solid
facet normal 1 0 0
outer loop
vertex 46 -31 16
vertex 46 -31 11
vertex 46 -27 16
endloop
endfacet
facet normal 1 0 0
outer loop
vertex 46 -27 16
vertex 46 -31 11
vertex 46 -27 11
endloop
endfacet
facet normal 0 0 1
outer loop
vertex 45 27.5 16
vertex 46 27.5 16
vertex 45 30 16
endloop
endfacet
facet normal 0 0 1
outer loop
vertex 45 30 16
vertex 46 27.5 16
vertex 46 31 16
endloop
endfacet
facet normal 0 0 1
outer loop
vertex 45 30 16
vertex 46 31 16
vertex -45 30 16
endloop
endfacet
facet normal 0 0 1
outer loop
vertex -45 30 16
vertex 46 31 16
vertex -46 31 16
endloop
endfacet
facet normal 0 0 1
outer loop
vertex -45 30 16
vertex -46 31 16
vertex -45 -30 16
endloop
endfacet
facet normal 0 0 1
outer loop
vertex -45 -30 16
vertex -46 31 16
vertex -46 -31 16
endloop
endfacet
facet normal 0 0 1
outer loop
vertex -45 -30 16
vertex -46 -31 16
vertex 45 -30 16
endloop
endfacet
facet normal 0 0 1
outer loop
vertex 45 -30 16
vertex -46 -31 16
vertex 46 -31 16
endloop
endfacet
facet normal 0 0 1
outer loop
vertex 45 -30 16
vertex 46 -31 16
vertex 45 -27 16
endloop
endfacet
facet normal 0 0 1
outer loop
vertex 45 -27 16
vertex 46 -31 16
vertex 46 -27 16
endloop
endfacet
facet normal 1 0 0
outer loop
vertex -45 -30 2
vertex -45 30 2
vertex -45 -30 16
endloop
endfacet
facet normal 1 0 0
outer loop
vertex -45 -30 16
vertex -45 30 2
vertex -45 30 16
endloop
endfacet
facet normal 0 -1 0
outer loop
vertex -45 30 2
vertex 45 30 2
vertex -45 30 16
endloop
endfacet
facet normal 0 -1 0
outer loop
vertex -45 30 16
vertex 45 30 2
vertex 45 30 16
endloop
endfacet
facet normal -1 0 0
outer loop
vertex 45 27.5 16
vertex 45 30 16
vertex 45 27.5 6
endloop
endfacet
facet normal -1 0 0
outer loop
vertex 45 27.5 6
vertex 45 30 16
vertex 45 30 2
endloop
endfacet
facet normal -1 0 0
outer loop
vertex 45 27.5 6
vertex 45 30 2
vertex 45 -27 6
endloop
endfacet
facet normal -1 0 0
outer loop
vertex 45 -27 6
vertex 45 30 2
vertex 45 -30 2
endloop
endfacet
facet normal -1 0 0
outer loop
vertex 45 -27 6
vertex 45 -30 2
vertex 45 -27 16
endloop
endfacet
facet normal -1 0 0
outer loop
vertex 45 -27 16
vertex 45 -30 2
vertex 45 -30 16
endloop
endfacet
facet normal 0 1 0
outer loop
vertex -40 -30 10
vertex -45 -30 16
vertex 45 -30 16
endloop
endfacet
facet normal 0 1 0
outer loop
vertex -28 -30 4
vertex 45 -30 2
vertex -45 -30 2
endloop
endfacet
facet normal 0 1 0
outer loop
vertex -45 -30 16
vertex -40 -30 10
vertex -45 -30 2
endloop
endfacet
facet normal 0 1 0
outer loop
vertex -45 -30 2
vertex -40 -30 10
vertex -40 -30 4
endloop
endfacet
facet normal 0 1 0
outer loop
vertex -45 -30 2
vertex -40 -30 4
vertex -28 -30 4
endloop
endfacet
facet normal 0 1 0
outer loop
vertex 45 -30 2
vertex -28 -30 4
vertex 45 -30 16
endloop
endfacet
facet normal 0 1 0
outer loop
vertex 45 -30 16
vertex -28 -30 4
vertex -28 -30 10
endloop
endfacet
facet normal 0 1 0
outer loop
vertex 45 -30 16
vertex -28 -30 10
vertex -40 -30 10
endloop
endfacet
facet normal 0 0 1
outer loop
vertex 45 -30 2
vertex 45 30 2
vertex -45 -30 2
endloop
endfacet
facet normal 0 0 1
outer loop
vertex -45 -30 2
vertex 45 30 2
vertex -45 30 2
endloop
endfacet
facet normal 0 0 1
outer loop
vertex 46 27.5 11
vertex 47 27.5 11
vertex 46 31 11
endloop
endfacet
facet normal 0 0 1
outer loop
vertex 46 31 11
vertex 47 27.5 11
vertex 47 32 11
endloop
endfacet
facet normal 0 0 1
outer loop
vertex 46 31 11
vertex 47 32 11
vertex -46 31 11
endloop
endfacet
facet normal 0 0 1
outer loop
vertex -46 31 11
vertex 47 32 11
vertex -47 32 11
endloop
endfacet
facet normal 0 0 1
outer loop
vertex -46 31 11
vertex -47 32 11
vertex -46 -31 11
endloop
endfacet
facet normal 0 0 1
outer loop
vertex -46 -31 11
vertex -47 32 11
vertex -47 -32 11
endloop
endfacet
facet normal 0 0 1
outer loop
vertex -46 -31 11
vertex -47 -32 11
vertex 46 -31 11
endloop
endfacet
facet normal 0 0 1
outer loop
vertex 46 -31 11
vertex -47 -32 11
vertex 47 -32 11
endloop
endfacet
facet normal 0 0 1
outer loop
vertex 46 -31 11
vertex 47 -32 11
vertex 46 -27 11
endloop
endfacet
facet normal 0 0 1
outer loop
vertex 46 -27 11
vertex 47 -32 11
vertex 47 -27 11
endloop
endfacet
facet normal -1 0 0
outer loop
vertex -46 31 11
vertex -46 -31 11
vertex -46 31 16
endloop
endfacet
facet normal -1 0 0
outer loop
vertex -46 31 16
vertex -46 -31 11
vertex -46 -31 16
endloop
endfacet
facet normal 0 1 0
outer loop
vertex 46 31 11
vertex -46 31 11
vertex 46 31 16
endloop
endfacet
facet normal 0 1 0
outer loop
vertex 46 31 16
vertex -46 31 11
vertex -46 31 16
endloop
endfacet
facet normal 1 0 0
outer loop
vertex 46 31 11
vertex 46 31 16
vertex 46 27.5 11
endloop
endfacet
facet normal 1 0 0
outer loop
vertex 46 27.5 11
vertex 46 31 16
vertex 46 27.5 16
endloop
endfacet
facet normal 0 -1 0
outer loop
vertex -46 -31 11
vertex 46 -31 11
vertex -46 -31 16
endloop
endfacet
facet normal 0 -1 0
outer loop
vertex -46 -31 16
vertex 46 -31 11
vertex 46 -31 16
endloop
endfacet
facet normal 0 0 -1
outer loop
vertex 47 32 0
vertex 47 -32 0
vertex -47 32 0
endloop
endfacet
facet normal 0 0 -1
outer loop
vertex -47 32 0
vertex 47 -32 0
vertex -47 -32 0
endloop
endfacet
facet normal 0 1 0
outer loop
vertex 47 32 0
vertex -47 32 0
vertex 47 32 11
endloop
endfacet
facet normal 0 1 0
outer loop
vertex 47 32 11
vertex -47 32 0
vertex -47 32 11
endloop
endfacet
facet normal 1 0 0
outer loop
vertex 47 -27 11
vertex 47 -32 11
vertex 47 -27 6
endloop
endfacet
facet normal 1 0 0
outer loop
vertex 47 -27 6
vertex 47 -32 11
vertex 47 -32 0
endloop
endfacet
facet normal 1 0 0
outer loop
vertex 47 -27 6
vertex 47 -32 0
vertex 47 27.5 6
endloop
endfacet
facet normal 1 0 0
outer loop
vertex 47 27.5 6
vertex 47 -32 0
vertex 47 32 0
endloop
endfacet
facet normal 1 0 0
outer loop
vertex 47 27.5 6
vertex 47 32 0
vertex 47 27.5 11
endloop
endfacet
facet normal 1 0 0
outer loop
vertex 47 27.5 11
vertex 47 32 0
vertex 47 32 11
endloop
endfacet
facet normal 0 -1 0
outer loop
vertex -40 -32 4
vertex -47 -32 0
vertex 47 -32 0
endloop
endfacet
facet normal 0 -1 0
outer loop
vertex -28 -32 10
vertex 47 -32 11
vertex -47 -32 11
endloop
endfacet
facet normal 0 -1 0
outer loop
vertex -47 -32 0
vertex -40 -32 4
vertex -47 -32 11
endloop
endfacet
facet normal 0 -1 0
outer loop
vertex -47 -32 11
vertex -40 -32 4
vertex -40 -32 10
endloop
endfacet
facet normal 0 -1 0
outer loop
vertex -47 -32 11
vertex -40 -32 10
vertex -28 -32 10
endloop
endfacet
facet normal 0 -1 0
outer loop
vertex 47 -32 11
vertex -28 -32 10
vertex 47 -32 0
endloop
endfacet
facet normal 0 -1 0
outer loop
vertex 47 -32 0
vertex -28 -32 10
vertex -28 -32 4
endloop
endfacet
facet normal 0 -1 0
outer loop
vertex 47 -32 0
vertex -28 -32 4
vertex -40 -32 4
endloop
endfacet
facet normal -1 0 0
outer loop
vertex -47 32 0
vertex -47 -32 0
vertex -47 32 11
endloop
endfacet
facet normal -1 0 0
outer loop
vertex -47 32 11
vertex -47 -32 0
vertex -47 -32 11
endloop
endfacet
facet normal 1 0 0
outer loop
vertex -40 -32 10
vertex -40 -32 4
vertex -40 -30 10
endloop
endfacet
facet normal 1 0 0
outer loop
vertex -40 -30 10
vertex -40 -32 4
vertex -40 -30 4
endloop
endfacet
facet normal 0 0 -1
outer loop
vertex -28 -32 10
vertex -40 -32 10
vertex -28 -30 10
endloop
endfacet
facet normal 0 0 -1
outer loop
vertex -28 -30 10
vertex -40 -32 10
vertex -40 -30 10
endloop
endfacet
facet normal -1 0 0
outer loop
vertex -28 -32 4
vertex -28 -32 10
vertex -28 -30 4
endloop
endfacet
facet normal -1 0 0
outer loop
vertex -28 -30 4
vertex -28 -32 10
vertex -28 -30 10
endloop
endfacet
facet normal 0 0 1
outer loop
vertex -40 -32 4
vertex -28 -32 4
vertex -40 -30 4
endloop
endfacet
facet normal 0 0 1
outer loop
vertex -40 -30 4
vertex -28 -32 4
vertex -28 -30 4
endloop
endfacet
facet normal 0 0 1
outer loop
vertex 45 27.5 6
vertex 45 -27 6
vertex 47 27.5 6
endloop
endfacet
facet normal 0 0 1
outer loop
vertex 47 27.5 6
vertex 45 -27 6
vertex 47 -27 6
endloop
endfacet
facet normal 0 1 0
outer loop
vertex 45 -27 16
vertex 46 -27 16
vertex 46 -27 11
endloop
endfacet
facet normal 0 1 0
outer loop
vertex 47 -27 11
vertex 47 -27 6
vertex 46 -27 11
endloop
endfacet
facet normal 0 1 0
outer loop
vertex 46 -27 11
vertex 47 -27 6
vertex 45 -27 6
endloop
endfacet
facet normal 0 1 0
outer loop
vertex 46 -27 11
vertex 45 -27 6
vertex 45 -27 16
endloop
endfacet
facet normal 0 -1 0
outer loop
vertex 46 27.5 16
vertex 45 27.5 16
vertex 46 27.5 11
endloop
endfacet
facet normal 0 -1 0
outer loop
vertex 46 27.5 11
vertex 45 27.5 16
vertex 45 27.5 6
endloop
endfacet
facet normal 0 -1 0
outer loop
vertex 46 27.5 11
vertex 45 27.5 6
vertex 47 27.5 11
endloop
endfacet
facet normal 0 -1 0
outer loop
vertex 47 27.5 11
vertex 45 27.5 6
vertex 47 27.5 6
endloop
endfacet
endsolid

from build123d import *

# Parameters (mm, degrees)
SKETCH1_W           = 94
SKETCH1_H           = 64
BOSS_EXTRUDE1_DEPTH = 16
SKETCH2_W           = 90
SKETCH2_H           = 60
CUT_EXTRUDE1_DEPTH  = 14
SKETCH4_W           = 94
SKETCH4_H           = 64
SKETCH4_W_2         = 92
SKETCH4_H_2         = 62
CUT_EXTRUDE2_DEPTH  = 5
CUT_EXTRUDE3_REACH  = 83
SKETCH6_W           = 12
SKETCH6_H           = 6
CUT_EXTRUDE4_REACH  = 100.712
SKETCH8_W           = 10
SKETCH8_H           = 54.5


with BuildPart() as part:
    # Sketch1 → Boss-Extrude1 (new body)
    with BuildSketch(Plane.XY):
        Rectangle(SKETCH1_W, SKETCH1_H)
    extrude(amount=BOSS_EXTRUDE1_DEPTH)

    # Sketch2 → Cut-Extrude1 (cut)
    with BuildSketch(Plane.XY.offset(16)):
        Rectangle(SKETCH2_W, SKETCH2_H)
    extrude(amount=-CUT_EXTRUDE1_DEPTH, mode=Mode.SUBTRACT)

    # Sketch4 → Cut-Extrude2 (cut)
    with BuildSketch(Plane.XY.offset(16)):
        Rectangle(SKETCH4_W, SKETCH4_H)
        Rectangle(SKETCH4_W_2, SKETCH4_H_2, mode=Mode.SUBTRACT)
    extrude(amount=-CUT_EXTRUDE2_DEPTH, mode=Mode.SUBTRACT)

    # Sketch6 → Cut-Extrude3 (cut, up to next)
    with BuildSketch(Plane.XZ.offset(32), mode=Mode.PRIVATE) as cut_extrude3_sk1:
        with Locations((-34, 7)):
            Rectangle(SKETCH6_W, SKETCH6_H)
    cut_extrude3_tool1 = extrude(cut_extrude3_sk1.sketch, amount=-CUT_EXTRUDE3_REACH, mode=Mode.PRIVATE) & part.part
    add(cut_extrude3_tool1.solids().sort_by_distance((-34, -32, 7))[0], mode=Mode.SUBTRACT)

    # Sketch8 → Cut-Extrude4 (cut, up to next)
    with BuildSketch(Plane.ZY.offset(-45), mode=Mode.PRIVATE) as cut_extrude4_sk1:
        with Locations((11, 0.25)):
            Rectangle(SKETCH8_W, SKETCH8_H)
    cut_extrude4_tool1 = extrude(cut_extrude4_sk1.sketch, amount=-CUT_EXTRUDE4_REACH, mode=Mode.PRIVATE) & part.part
    add(cut_extrude4_tool1.solids().sort_by_distance((45, 0.25, 11))[0], mode=Mode.SUBTRACT)


solid = part.part
